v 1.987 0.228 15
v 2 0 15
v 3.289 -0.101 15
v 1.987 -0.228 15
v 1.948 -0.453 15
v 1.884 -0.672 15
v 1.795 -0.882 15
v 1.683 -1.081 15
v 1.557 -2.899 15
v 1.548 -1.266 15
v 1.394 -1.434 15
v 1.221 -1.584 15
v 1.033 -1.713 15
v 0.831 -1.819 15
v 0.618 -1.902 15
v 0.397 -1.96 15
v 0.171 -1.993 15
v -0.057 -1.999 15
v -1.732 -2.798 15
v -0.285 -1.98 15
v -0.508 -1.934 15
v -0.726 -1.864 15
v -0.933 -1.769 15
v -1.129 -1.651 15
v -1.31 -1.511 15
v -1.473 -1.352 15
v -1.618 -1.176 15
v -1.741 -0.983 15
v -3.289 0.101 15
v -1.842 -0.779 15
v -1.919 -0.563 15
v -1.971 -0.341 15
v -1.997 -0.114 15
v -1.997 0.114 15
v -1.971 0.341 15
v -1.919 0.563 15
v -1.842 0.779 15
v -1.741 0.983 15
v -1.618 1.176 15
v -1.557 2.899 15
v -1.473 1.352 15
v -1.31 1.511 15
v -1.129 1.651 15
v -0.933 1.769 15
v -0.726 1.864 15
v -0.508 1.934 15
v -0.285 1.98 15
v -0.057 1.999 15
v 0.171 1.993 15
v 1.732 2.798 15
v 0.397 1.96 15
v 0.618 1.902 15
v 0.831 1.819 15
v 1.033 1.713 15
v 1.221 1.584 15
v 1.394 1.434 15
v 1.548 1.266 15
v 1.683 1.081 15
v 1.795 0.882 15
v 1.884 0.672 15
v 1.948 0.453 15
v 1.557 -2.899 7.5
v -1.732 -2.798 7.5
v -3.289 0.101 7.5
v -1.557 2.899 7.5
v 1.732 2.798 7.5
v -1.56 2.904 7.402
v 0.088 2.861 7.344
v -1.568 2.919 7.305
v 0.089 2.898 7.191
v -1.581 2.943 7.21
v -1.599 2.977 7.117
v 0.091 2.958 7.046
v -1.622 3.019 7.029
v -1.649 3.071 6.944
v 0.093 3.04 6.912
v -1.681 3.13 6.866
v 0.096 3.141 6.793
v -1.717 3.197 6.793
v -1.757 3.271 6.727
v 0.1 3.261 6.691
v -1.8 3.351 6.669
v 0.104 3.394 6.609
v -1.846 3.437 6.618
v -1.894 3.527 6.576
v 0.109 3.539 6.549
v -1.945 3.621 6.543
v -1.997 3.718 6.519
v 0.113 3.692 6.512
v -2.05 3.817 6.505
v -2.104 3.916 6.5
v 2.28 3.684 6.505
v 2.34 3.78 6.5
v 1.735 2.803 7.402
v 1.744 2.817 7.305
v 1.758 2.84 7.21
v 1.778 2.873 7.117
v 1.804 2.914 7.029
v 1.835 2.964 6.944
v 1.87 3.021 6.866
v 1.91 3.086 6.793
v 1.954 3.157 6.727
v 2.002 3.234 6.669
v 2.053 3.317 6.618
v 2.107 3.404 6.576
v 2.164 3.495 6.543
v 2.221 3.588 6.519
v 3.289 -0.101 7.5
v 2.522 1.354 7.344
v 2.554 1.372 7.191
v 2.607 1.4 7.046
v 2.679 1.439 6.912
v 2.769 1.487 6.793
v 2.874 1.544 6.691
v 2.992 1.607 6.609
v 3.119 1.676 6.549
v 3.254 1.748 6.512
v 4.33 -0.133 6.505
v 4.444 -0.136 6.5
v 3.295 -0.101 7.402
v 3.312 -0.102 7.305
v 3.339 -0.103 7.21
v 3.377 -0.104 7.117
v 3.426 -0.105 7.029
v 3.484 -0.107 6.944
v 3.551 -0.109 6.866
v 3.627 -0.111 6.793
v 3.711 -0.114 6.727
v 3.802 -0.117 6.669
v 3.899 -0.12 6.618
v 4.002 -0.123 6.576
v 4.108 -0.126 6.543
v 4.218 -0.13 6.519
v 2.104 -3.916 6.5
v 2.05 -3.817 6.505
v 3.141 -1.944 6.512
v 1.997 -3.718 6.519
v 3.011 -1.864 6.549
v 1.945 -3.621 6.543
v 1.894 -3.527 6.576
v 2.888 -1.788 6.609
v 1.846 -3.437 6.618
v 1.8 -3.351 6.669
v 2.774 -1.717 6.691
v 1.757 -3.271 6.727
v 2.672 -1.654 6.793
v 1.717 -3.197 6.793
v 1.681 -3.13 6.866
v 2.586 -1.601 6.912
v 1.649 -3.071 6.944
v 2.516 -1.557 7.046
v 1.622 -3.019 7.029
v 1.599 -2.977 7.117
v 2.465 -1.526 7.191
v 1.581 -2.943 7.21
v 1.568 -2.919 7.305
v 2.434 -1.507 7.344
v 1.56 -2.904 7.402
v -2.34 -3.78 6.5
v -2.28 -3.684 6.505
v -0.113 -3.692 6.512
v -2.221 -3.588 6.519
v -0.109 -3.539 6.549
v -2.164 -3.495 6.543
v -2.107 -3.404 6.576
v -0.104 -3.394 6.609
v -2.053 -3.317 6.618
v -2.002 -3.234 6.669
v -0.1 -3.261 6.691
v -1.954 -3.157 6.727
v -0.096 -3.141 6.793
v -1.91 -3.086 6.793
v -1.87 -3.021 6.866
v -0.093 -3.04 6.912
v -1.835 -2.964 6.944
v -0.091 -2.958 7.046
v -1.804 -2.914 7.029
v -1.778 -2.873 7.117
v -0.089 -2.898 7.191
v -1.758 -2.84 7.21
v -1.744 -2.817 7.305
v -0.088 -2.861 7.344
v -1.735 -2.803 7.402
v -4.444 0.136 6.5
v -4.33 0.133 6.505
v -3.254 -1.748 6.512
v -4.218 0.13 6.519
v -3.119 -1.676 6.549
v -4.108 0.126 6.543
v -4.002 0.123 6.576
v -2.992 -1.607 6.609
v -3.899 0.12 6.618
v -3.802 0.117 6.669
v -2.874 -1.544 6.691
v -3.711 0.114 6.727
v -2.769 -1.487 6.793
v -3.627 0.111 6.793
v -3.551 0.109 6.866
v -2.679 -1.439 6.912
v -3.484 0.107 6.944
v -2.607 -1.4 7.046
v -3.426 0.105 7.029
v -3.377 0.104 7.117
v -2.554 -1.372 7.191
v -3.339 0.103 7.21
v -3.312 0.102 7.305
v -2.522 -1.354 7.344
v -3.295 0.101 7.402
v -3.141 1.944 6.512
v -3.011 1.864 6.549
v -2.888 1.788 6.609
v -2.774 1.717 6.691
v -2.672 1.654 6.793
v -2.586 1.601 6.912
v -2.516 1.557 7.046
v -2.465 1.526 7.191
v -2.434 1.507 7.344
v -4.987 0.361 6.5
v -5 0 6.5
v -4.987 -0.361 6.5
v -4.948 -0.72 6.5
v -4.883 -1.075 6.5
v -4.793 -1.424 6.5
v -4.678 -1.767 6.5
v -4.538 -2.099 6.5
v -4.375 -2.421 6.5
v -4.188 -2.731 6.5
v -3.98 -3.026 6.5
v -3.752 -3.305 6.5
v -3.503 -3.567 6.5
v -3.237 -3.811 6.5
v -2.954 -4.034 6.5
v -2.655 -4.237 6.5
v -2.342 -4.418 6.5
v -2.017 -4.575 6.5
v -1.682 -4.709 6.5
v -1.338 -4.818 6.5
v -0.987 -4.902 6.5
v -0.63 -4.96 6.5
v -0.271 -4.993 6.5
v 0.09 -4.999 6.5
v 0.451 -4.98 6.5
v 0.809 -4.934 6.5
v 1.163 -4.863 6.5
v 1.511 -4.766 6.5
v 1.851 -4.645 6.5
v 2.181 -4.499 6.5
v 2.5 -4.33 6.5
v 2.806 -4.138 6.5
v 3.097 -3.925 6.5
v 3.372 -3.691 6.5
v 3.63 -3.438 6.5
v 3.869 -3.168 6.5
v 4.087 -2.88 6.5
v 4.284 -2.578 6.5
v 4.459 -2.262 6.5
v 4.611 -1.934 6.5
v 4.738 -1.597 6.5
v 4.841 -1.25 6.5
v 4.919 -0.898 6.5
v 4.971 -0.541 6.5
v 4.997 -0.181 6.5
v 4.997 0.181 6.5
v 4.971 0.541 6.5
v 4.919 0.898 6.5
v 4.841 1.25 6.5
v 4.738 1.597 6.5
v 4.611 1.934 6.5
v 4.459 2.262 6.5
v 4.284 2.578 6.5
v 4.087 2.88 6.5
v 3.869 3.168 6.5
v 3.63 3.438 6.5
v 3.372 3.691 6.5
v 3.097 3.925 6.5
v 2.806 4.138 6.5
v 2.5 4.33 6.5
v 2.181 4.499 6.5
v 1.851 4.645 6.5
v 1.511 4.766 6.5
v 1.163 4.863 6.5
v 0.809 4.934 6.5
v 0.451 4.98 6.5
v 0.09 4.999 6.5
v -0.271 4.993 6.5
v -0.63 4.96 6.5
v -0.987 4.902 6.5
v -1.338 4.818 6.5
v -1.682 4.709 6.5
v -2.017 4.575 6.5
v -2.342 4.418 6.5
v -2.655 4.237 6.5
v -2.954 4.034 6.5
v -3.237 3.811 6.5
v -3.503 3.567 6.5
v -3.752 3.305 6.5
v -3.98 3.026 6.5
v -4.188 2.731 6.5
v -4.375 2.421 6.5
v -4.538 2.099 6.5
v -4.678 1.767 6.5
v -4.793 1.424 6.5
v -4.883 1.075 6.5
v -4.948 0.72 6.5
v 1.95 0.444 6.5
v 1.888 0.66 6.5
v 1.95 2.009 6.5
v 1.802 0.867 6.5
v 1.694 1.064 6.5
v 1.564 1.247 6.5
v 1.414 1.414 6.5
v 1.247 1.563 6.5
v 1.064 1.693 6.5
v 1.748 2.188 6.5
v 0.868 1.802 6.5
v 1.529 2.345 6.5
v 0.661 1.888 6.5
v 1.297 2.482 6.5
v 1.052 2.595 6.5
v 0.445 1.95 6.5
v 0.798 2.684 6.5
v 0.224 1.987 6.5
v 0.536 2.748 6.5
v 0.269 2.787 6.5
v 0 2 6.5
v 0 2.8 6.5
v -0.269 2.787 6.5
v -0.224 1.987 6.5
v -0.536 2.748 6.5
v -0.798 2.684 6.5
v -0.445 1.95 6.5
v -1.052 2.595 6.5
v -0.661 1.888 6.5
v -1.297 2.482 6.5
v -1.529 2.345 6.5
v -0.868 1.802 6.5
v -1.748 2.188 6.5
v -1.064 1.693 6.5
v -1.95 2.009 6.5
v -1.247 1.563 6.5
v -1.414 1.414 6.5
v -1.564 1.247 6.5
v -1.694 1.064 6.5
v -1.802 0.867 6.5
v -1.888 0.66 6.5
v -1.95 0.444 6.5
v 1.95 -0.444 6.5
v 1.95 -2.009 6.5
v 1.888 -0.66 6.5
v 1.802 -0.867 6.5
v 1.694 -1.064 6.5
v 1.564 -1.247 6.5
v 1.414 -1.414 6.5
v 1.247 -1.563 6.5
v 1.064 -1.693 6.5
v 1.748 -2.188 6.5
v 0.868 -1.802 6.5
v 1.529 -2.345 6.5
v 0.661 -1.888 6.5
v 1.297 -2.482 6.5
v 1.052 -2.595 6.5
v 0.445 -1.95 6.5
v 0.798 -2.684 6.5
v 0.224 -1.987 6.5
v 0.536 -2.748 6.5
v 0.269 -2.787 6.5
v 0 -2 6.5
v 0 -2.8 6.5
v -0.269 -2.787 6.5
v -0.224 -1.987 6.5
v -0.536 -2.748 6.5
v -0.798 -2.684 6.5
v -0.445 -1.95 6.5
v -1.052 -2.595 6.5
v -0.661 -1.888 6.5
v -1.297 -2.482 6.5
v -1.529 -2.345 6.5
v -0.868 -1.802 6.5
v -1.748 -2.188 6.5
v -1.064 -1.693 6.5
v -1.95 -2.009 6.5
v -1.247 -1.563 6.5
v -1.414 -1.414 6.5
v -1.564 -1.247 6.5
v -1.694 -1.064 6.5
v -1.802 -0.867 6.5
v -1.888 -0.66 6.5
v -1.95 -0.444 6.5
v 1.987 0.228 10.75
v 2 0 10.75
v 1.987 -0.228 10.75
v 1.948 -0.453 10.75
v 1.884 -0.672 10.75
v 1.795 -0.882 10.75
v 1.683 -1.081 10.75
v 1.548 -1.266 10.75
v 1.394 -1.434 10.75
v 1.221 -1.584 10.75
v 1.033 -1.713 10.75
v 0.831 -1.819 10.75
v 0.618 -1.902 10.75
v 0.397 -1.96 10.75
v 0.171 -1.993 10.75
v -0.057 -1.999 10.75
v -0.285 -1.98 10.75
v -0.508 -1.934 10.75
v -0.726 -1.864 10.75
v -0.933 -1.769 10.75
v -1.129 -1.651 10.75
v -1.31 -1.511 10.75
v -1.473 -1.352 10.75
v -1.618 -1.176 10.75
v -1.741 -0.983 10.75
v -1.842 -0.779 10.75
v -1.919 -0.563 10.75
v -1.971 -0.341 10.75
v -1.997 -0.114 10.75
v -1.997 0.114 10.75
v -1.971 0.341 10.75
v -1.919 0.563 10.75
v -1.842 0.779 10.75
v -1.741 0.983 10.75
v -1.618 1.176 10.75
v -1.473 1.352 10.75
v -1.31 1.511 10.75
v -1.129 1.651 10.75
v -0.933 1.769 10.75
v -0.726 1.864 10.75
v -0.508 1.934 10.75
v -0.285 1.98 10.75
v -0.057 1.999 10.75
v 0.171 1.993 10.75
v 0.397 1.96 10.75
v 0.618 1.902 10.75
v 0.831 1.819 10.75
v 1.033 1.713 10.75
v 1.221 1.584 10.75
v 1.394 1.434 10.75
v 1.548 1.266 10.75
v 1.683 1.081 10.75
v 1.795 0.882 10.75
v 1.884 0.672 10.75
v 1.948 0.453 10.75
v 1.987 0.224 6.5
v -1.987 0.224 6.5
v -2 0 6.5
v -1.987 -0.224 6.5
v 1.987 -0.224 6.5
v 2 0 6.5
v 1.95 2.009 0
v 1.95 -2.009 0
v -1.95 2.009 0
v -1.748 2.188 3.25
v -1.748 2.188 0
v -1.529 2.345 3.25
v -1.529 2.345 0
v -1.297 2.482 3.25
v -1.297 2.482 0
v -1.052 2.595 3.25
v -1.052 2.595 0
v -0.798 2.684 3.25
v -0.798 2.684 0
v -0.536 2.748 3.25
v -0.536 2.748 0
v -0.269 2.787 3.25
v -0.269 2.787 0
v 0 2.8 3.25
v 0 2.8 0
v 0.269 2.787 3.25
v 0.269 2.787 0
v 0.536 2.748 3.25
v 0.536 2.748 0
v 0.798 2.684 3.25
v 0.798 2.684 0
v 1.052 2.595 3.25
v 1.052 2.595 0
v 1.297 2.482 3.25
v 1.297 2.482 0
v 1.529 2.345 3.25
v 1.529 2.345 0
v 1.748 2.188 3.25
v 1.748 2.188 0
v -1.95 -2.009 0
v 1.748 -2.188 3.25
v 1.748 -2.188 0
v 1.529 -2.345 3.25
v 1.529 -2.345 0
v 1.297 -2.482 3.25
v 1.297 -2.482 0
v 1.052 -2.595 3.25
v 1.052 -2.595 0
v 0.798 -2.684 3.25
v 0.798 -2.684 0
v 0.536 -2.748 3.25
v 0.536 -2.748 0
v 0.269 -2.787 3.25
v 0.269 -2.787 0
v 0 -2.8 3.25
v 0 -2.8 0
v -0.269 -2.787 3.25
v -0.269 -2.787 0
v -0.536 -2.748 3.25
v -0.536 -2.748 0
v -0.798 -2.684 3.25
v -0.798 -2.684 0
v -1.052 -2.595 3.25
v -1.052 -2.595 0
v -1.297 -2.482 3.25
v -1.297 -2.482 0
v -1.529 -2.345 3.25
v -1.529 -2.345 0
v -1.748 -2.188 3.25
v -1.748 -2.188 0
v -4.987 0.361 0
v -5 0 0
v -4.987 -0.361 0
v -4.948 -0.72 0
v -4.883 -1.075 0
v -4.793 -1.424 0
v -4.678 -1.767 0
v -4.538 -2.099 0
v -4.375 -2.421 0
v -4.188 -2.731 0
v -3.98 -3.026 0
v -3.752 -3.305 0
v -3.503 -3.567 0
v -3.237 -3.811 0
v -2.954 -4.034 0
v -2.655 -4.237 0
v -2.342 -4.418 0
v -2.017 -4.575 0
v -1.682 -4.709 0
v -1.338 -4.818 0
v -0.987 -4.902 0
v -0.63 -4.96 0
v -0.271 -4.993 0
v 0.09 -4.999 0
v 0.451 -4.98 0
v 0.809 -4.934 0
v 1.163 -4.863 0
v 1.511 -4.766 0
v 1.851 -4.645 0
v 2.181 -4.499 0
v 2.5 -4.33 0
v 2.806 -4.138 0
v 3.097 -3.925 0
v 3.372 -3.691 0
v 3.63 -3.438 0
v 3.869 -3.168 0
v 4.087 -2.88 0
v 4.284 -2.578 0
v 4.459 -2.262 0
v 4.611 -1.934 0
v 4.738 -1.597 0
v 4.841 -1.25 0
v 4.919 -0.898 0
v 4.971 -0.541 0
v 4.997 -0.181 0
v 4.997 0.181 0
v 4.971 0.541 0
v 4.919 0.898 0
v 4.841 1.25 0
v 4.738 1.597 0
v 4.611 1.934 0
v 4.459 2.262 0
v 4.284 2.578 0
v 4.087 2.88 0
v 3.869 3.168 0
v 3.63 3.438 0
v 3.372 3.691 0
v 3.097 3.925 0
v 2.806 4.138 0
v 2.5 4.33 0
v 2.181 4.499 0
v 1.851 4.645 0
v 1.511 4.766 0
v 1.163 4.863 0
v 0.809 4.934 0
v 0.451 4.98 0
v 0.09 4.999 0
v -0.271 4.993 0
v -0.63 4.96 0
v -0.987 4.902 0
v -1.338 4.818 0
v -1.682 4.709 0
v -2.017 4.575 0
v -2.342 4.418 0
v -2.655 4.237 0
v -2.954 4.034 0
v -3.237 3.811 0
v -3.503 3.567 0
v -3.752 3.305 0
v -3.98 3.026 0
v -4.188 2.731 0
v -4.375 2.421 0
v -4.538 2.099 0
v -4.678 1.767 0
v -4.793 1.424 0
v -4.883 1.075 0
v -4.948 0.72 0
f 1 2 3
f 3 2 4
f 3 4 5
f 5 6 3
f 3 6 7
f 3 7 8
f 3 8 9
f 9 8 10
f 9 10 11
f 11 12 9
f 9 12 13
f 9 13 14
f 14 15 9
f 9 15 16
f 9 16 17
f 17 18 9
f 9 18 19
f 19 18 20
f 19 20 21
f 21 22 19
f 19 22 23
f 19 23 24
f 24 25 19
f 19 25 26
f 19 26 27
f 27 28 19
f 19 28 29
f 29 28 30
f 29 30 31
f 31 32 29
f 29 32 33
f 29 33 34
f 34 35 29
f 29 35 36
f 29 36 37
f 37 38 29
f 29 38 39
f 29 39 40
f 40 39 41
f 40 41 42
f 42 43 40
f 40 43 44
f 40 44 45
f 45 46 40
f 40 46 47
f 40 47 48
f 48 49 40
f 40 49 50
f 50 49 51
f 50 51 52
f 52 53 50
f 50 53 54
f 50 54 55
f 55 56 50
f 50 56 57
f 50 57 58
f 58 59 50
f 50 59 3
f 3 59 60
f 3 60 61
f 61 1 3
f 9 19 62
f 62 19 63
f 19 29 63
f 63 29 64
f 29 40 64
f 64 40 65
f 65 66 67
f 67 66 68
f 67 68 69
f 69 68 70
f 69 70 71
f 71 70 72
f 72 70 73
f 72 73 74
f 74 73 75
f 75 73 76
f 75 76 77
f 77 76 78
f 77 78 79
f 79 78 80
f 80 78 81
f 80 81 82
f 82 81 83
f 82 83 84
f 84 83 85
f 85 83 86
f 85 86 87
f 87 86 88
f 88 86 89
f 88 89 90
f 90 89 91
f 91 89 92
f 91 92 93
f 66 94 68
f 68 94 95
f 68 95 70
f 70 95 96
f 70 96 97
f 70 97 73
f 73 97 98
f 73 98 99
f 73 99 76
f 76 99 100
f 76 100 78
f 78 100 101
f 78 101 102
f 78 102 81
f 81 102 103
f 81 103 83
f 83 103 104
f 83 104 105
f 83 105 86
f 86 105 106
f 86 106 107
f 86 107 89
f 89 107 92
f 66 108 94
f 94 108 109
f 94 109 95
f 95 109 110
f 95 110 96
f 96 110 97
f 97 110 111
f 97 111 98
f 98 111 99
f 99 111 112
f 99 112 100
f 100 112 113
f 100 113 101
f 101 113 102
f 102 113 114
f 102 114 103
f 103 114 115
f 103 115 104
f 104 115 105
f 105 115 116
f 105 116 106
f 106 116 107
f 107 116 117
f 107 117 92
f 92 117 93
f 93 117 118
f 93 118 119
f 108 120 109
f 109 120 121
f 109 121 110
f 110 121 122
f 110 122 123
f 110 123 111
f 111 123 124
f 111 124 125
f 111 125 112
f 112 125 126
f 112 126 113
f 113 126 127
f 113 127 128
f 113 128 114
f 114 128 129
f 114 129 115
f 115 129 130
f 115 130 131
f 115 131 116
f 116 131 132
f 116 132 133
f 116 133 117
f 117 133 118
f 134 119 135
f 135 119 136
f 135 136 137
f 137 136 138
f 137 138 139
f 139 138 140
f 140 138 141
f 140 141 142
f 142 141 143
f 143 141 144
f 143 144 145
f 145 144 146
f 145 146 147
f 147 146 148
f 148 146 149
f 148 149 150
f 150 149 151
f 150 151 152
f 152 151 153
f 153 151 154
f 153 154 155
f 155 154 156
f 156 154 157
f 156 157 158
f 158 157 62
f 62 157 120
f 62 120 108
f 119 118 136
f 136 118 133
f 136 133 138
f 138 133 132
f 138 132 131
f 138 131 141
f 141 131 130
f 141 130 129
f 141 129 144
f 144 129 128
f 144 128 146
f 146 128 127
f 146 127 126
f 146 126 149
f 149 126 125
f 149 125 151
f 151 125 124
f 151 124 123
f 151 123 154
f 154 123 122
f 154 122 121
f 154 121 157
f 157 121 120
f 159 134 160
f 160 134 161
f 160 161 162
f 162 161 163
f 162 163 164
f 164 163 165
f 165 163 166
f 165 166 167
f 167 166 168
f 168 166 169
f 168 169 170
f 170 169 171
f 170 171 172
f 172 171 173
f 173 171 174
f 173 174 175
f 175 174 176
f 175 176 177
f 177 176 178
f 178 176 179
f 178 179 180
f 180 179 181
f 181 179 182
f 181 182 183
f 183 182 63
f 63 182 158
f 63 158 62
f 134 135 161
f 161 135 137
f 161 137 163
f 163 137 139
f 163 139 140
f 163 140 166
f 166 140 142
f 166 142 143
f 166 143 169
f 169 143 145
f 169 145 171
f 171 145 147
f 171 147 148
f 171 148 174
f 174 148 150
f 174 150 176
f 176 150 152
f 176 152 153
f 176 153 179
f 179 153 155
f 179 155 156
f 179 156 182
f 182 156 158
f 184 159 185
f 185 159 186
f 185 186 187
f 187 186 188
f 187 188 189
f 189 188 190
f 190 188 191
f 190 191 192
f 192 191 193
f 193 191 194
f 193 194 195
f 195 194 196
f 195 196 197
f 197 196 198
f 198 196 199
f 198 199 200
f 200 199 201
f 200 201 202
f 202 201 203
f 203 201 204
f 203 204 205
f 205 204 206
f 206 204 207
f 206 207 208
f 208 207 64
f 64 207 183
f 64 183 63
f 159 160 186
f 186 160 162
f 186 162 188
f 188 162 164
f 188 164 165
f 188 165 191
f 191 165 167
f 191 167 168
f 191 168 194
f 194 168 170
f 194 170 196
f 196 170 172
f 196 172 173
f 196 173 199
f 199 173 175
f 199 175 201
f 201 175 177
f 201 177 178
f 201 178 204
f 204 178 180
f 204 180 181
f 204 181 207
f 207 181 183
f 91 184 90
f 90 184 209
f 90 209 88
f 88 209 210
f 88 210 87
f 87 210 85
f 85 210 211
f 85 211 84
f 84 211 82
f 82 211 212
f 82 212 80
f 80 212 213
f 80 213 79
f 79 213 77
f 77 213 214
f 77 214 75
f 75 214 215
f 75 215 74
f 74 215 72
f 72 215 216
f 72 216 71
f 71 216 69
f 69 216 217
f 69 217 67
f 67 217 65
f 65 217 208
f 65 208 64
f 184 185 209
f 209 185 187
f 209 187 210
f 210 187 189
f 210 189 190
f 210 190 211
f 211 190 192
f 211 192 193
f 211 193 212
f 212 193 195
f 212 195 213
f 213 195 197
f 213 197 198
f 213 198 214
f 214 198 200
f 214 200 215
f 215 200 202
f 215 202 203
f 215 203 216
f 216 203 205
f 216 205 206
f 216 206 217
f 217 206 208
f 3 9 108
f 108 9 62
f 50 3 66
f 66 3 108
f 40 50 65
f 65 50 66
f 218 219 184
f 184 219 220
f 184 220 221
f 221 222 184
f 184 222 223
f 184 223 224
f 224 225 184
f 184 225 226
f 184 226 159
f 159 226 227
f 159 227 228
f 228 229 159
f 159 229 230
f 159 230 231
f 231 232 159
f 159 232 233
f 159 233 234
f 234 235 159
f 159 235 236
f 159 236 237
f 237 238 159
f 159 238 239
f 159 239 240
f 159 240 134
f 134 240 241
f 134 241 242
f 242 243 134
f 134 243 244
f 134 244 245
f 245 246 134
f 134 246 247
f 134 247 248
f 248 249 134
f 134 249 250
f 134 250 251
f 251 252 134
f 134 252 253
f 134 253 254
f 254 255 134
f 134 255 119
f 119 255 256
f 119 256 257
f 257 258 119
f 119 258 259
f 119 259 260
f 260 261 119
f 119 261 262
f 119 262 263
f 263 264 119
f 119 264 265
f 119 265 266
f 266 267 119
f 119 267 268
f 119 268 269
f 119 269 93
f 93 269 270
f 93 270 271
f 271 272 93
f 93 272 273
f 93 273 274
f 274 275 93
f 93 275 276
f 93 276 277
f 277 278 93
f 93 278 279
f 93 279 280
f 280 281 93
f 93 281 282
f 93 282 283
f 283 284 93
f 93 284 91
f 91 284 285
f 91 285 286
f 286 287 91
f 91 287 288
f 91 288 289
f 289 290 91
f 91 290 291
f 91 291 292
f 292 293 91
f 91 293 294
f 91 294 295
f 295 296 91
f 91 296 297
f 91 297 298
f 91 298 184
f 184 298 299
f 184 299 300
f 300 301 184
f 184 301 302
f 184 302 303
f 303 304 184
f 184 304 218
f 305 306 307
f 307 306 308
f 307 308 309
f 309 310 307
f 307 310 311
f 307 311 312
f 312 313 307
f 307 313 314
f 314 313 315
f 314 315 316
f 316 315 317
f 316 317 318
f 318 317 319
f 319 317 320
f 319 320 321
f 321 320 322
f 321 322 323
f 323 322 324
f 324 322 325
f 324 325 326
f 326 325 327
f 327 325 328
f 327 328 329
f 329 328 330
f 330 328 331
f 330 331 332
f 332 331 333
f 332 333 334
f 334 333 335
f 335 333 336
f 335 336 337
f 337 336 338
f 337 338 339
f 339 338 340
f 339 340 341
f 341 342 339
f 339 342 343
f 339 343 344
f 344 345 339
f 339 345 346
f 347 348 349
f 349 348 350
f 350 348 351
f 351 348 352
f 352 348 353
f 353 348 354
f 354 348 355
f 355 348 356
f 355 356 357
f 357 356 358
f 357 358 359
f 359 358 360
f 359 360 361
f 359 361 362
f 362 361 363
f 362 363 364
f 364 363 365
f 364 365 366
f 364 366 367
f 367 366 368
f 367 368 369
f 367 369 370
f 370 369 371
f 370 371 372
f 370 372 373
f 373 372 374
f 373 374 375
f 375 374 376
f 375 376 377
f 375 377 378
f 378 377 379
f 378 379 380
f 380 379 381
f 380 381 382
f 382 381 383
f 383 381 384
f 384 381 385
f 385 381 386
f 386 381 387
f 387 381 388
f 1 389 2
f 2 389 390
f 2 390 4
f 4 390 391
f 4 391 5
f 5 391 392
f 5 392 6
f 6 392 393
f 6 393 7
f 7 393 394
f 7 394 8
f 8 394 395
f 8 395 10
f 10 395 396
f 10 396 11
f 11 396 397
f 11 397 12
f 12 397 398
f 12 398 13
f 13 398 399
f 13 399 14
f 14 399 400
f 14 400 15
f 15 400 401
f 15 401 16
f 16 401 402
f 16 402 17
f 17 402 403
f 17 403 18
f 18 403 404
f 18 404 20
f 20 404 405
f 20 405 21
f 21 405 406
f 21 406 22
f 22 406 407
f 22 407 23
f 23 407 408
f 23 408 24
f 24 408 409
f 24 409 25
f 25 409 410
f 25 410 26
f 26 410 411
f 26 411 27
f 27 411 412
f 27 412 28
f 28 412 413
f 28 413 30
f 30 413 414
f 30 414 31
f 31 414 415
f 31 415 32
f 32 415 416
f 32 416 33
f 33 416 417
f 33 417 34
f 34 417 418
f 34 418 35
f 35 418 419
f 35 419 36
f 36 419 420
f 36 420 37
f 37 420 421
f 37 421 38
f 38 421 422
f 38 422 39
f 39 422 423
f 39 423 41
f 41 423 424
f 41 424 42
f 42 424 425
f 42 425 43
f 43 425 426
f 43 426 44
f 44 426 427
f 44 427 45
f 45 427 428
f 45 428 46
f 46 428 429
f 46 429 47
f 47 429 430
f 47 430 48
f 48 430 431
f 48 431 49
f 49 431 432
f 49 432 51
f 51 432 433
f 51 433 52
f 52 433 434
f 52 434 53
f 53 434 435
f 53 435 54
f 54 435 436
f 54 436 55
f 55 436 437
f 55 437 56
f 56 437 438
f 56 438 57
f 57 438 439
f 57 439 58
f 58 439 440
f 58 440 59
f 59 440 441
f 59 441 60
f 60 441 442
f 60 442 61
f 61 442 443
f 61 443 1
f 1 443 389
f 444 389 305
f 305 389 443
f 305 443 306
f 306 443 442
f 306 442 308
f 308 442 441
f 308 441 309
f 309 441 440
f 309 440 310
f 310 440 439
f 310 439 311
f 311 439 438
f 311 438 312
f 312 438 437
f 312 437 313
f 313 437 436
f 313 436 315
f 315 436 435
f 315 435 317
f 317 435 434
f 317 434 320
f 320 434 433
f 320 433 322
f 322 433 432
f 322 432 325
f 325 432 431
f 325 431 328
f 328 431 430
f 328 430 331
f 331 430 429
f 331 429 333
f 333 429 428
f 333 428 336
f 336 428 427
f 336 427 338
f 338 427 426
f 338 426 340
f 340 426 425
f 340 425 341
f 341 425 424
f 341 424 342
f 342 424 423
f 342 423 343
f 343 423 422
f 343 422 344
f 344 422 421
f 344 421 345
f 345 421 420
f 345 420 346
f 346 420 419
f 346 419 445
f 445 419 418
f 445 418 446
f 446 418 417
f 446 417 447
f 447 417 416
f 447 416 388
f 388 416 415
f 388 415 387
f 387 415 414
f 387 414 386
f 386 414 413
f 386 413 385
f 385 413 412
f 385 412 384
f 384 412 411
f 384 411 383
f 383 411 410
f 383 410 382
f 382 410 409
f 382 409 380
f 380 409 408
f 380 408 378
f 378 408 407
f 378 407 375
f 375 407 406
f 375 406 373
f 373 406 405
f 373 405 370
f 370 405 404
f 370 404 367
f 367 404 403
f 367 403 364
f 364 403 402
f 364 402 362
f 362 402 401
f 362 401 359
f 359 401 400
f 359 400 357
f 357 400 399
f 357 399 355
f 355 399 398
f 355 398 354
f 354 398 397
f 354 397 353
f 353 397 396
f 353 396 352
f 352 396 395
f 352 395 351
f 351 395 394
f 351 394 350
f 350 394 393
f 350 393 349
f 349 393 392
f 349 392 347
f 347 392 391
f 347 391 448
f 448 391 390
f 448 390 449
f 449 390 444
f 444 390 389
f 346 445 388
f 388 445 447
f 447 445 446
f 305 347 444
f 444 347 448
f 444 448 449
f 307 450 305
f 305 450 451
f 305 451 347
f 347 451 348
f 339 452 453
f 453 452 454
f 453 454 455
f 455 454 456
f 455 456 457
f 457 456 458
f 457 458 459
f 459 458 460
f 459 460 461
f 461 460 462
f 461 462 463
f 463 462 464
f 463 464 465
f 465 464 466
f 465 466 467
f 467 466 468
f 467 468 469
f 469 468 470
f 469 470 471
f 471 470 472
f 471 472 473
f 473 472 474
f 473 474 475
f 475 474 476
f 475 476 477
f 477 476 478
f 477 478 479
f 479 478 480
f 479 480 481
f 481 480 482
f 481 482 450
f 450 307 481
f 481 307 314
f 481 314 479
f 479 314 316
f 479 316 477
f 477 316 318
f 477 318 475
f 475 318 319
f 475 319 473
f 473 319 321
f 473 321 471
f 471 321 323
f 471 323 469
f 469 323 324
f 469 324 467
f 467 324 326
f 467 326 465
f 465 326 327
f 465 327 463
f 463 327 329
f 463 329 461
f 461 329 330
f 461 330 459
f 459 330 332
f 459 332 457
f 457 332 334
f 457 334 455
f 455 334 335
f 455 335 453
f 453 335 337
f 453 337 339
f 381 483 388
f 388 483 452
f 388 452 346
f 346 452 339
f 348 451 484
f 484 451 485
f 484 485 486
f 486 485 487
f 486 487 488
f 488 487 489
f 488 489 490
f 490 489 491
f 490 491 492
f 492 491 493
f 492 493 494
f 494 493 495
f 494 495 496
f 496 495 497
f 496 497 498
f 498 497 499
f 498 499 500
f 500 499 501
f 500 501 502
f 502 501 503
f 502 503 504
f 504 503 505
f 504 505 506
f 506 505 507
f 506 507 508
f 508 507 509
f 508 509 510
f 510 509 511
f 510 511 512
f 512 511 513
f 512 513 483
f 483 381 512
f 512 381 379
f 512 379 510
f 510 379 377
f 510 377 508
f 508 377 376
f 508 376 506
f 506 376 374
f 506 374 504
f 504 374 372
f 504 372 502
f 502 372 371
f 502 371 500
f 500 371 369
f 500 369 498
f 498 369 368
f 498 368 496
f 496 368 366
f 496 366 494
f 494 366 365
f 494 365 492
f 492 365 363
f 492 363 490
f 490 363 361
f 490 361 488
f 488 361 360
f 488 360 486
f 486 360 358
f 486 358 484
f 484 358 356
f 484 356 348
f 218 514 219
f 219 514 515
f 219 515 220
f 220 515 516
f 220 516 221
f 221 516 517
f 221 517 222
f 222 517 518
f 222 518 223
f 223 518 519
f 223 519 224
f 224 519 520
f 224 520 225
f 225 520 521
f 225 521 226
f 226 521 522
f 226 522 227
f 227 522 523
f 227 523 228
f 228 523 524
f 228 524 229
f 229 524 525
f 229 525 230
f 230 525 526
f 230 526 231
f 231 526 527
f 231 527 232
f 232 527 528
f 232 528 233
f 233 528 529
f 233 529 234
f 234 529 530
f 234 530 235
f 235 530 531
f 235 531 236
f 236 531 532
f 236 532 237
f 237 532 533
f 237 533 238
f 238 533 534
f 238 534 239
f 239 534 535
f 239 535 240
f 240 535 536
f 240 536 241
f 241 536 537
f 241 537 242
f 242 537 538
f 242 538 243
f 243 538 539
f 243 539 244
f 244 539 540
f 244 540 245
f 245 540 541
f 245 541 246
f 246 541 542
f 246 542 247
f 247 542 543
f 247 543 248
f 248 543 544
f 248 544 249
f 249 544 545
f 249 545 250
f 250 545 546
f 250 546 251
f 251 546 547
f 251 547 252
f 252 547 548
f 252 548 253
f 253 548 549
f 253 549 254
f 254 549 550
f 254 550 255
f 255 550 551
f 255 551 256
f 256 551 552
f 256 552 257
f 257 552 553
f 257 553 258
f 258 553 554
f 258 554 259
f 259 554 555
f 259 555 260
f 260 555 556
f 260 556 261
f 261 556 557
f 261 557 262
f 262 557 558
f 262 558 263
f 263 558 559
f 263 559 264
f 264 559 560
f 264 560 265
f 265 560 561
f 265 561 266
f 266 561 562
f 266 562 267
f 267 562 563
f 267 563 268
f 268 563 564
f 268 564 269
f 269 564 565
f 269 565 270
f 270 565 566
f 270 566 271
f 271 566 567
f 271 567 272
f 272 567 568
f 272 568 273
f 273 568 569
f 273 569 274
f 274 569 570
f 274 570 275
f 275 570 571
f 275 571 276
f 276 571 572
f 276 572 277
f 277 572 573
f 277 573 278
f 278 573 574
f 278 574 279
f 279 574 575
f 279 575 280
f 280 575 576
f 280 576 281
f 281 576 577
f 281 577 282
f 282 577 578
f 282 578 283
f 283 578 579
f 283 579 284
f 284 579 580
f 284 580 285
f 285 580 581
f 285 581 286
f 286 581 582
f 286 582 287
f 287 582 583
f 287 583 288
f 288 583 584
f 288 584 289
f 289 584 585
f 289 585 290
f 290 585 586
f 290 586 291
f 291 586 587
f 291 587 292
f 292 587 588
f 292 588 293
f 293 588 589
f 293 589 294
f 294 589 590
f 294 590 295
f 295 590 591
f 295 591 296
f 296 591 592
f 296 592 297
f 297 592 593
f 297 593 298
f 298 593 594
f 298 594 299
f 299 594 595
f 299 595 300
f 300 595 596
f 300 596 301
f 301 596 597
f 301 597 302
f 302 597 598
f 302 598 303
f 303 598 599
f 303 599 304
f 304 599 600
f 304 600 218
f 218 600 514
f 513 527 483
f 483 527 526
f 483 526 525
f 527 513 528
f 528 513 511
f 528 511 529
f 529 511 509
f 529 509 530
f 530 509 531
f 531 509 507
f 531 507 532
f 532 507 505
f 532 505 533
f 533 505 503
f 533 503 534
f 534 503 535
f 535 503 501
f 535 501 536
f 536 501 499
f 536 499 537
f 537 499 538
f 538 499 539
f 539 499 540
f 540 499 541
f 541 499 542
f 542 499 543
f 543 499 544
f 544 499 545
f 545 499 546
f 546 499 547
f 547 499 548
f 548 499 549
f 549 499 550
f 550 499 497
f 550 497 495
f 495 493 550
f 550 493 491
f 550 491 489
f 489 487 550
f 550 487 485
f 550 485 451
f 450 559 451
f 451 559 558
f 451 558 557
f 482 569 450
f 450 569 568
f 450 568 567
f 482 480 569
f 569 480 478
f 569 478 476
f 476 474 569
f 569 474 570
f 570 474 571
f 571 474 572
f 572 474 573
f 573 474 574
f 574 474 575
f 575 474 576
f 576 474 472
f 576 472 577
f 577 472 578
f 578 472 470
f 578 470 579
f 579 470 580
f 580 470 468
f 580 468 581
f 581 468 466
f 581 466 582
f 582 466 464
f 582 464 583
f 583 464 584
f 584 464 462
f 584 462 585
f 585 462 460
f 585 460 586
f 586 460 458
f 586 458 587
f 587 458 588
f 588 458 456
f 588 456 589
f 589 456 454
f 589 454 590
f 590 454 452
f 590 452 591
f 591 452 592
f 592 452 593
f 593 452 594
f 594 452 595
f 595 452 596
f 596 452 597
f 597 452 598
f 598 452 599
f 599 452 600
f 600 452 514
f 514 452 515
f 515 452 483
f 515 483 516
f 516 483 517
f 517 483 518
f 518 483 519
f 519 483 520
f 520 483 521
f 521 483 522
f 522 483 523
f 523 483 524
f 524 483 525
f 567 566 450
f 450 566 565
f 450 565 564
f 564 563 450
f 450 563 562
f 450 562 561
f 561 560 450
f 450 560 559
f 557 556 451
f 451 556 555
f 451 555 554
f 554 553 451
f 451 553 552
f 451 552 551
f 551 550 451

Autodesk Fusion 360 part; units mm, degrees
sketch "Skizze1" plane through (0, 0, 0) normal (0, 0, 1) x (1, 0, 0)
  circle A0 centre (0, 0) radius 2.8
  circle A1 centre (0, 0) radius 5
  line L0 (1.95, -2.0094) -> (-1.95, -2.0094)
  line L1 (-1.95, -2.0094) -> (-1.95, 2.0094)
  line L2 (-1.95, 2.0094) -> (1.95, 2.0094)
  line L3 (1.95, 2.0094) -> (1.95, -2.0094)
  line L4 (1.95, -2.0094) -> (-1.95, 2.0094) construction
  line L5 (-1.95, -2.0094) -> (1.95, 2.0094) construction
  dimension "d1" = 5.6
  dimension "d2" = 10
  dimension "d3" = 3.9
extrude "Extrusion1" add sketch "Skizze1" along normal blind 6.5 contours A0 L3 | A0 L1 | A1 makes body 1
ref_plane "Arbeitsebene1" through (0, 0, 6.5) normal (0, 0, 1) x (1, 0, 0)
sketch "Skizze2" plane through (0, 0, 6.5) normal (0, 0, 1) x (1, 0, 0)
  line L0 (-3.2893, 0.101) -> (-1.7322, -2.7981)
  line L1 (-1.7322, -2.7981) -> (1.5572, -2.8992)
  line L2 (1.5572, -2.8992) -> (3.2893, -0.101)
  line L3 (3.2893, -0.101) -> (1.7322, 2.7981)
  line L4 (1.7322, 2.7981) -> (-1.5572, 2.8992)
  line L5 (-1.5572, 2.8992) -> (-3.2893, 0.101)
  dimension "d7" = 2.85
extrude "Extrusion2" add sketch "Skizze2" along normal blind 10.5 separate body makes body 2
sketch "Skizze3" plane through (0, 0, 17) normal (0, 0, 1) x (-1, 0, 0)
  line L0 (1.5572, -2.8992) -> (3.2893, -0.101)
  line L1 (3.2893, -0.101) -> (1.7322, 2.7981)
  line L2 (1.7322, 2.7981) -> (-1.5572, 2.8992)
  line L3 (-1.5572, 2.8992) -> (-3.2893, 0.101)
  line L4 (-3.2893, 0.101) -> (-1.7322, -2.7981)
  line L5 (-1.7322, -2.7981) -> (1.5572, -2.8992)
  circle A0 centre (0, 0) radius 2
  dimension "d10" = 4
extrude "Extrusion3" cut sketch "Skizze3" against normal blind 10.5 contours A0 bodies 2
combine "Kombinieren1" operation add target body 1 tool bodies 2
fillet "Abrundung1" radius 1 6 edges at (2.4233, -1.5001, 6.5) (2.5108, 1.3485, 6.5) (0.0875, 2.8487, 6.5) (-0.0875, -2.8487, 6.5) (-2.5108, -1.3485, 6.5) (-2.4233, 1.5001, 6.5) on bodies 1
extrude "Extrusion4" cut 1 faces at (-0.1082, -2.5639, 17) along direction (0, 0, -1) blind 2 on bodies 1 bodies 1
equation "d7 = ( 5.7 / 2 ) * 1 mm"
